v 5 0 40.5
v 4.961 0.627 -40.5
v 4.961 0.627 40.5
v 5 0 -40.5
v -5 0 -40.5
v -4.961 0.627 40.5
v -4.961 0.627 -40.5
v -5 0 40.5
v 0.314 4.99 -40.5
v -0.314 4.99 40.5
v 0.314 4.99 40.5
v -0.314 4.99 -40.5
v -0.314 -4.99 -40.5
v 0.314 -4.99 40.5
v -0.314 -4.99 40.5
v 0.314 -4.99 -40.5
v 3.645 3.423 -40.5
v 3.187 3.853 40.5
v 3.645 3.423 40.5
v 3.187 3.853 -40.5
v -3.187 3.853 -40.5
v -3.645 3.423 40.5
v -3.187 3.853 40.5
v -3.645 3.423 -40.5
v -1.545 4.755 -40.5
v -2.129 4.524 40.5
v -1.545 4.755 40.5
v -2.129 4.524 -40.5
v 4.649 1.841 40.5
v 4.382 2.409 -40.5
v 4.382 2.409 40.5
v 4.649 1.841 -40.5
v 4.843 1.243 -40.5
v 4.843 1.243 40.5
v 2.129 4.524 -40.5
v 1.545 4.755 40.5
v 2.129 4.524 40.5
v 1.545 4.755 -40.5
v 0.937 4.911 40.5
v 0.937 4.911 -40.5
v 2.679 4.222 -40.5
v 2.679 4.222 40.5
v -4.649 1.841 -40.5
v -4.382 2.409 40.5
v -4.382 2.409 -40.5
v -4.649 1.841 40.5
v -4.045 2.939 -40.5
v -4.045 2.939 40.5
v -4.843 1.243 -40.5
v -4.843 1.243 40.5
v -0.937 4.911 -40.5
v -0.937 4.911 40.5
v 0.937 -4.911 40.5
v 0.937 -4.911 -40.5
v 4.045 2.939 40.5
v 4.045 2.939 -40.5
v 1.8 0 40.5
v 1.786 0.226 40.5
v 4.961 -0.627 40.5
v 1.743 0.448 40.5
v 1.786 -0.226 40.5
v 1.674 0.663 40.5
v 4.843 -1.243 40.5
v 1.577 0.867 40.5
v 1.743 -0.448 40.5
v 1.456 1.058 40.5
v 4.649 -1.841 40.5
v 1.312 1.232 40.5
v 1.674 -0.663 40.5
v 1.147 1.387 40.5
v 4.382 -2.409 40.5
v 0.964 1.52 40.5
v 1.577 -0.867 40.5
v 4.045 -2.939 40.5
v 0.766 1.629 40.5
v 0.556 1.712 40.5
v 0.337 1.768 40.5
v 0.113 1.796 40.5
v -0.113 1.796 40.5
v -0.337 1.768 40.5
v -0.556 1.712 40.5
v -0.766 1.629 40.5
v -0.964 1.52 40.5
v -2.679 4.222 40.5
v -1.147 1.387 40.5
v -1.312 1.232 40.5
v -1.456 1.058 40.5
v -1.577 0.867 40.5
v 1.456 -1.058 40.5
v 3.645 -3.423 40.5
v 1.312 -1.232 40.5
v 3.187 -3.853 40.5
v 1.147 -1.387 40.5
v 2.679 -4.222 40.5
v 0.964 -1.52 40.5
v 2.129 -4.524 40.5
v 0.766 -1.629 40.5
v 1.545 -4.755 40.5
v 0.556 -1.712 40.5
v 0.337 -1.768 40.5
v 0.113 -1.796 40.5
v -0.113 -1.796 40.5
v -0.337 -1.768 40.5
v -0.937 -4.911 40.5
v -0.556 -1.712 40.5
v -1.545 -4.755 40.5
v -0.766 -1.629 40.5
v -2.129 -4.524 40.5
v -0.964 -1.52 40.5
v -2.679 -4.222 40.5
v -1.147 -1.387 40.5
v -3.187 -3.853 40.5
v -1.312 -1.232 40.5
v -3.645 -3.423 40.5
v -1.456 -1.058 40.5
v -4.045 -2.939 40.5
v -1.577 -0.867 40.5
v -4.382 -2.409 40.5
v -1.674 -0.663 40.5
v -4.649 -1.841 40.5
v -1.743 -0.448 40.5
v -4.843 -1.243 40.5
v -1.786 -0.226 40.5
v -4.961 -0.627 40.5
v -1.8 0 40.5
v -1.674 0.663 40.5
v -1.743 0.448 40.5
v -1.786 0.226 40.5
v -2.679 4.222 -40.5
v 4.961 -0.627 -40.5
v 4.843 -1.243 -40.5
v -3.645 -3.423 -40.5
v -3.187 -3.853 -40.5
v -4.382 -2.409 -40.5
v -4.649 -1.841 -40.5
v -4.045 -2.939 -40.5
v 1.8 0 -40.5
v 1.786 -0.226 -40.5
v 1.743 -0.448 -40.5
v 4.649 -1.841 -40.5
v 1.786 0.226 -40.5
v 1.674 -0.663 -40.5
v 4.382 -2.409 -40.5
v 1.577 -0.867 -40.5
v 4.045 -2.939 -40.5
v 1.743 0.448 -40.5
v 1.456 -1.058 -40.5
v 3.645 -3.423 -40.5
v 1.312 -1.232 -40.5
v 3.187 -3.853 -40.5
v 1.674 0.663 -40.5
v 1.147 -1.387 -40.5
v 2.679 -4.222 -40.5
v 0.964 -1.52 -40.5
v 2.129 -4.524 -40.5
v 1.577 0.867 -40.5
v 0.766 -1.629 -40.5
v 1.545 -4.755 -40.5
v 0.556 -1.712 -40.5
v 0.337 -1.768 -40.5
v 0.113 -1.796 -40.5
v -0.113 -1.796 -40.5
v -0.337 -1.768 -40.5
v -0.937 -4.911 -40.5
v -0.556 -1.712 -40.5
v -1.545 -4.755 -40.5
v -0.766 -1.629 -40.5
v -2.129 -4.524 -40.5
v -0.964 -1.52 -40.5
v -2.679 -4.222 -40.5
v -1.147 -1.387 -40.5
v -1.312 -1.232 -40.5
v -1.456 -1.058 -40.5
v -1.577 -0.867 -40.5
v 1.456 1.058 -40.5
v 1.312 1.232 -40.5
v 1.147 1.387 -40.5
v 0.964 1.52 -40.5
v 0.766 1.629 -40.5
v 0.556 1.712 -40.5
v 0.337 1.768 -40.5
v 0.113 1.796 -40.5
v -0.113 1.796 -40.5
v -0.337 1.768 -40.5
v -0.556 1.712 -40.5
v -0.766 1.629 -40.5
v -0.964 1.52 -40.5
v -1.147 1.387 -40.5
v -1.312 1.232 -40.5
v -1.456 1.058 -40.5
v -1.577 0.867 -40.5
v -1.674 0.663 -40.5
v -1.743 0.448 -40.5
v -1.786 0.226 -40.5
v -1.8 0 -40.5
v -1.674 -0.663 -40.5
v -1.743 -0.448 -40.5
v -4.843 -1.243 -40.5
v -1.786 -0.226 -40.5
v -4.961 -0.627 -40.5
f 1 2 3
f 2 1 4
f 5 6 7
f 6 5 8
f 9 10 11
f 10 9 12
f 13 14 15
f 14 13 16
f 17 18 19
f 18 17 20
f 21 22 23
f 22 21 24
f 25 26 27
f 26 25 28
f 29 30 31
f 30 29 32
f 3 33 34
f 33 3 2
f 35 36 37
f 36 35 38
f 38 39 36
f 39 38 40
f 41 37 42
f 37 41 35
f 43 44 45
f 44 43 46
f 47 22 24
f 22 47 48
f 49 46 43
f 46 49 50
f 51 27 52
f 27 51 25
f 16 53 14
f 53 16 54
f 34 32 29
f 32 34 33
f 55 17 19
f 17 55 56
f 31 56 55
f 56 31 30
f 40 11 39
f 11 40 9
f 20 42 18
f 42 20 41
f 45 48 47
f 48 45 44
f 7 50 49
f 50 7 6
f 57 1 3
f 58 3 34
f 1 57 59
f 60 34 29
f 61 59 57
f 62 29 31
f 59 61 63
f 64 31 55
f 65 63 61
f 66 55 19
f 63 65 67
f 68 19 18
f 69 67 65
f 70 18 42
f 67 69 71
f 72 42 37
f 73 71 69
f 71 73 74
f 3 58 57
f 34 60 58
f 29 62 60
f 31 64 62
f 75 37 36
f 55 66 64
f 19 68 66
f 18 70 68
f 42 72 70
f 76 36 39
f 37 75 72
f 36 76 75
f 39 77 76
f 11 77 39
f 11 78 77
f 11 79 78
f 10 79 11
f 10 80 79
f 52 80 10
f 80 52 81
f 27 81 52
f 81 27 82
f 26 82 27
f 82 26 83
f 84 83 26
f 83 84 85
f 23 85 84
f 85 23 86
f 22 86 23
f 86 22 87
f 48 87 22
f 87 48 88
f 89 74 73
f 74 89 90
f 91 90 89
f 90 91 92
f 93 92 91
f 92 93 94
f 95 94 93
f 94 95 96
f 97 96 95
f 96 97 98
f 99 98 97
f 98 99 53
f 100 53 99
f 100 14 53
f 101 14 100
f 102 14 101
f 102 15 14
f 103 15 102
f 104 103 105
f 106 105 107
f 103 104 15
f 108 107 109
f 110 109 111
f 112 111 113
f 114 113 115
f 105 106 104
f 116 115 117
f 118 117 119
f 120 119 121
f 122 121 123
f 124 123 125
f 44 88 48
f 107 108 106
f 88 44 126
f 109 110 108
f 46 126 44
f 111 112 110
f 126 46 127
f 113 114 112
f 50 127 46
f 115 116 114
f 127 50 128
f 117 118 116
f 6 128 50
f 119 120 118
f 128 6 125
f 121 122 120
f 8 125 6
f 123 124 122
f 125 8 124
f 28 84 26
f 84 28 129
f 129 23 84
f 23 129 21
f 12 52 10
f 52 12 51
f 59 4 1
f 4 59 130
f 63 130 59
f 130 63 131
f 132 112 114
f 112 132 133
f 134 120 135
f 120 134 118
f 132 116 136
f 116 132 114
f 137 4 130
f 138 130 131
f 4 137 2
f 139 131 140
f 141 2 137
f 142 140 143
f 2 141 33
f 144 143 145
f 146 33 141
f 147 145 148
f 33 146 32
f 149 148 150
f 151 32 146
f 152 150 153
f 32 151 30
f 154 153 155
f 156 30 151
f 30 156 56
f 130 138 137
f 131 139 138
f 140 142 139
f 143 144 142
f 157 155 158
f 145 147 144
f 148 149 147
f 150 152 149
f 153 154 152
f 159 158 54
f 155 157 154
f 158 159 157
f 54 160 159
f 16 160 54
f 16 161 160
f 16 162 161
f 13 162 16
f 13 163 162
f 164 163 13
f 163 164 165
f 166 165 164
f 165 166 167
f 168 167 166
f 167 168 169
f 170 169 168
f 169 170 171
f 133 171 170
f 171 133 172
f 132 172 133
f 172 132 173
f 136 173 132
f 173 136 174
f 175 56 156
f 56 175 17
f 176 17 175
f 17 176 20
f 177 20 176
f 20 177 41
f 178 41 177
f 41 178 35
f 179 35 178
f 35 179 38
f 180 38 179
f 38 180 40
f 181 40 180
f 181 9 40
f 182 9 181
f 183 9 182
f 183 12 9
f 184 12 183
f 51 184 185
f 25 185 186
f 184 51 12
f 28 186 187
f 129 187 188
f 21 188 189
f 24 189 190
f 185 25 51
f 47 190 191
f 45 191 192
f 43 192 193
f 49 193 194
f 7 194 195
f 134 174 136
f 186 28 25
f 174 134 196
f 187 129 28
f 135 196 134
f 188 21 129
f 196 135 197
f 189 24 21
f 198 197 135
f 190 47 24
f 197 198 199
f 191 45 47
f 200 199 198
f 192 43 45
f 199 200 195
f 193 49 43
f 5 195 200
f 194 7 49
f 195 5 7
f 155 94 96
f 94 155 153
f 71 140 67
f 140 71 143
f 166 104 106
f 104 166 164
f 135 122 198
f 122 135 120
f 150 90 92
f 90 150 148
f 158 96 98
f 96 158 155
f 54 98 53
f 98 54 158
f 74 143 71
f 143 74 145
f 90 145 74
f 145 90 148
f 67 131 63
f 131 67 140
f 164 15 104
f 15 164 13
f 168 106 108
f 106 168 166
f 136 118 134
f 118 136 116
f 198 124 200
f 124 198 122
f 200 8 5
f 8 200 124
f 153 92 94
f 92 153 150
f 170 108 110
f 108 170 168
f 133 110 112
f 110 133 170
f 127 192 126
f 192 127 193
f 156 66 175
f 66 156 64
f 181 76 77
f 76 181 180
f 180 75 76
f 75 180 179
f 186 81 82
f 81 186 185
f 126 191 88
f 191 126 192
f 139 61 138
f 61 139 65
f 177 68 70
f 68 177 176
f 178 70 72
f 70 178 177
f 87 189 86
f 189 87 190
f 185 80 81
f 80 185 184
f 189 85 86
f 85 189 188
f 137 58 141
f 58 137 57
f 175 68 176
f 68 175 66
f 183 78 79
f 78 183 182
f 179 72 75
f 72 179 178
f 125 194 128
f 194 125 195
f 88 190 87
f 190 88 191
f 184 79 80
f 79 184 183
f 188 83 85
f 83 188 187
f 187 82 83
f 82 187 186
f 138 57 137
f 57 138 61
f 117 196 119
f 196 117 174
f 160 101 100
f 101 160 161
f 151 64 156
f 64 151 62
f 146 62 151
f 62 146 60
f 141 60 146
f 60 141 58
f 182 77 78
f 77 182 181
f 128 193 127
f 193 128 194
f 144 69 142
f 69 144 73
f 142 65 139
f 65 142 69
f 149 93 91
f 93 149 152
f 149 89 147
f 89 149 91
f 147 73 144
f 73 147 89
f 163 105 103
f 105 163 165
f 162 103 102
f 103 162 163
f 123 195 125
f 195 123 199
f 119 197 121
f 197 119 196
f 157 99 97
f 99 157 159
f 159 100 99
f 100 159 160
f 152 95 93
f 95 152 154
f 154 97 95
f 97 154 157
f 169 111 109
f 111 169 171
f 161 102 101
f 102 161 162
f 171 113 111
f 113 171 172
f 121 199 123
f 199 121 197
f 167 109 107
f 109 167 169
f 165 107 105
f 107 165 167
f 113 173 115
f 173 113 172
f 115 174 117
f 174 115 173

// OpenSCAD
$fn = 50;


difference() {
	union() {
		translate(v = [0, 0, -40.5000000000]) {
			cylinder(h = 81, r = 5.0000000000);
		}
	}
	union() {
		translate(v = [0, 0, -100.0000000000]) {
			cylinder(h = 200, r = 1.8000000000);
		}
	}
}
